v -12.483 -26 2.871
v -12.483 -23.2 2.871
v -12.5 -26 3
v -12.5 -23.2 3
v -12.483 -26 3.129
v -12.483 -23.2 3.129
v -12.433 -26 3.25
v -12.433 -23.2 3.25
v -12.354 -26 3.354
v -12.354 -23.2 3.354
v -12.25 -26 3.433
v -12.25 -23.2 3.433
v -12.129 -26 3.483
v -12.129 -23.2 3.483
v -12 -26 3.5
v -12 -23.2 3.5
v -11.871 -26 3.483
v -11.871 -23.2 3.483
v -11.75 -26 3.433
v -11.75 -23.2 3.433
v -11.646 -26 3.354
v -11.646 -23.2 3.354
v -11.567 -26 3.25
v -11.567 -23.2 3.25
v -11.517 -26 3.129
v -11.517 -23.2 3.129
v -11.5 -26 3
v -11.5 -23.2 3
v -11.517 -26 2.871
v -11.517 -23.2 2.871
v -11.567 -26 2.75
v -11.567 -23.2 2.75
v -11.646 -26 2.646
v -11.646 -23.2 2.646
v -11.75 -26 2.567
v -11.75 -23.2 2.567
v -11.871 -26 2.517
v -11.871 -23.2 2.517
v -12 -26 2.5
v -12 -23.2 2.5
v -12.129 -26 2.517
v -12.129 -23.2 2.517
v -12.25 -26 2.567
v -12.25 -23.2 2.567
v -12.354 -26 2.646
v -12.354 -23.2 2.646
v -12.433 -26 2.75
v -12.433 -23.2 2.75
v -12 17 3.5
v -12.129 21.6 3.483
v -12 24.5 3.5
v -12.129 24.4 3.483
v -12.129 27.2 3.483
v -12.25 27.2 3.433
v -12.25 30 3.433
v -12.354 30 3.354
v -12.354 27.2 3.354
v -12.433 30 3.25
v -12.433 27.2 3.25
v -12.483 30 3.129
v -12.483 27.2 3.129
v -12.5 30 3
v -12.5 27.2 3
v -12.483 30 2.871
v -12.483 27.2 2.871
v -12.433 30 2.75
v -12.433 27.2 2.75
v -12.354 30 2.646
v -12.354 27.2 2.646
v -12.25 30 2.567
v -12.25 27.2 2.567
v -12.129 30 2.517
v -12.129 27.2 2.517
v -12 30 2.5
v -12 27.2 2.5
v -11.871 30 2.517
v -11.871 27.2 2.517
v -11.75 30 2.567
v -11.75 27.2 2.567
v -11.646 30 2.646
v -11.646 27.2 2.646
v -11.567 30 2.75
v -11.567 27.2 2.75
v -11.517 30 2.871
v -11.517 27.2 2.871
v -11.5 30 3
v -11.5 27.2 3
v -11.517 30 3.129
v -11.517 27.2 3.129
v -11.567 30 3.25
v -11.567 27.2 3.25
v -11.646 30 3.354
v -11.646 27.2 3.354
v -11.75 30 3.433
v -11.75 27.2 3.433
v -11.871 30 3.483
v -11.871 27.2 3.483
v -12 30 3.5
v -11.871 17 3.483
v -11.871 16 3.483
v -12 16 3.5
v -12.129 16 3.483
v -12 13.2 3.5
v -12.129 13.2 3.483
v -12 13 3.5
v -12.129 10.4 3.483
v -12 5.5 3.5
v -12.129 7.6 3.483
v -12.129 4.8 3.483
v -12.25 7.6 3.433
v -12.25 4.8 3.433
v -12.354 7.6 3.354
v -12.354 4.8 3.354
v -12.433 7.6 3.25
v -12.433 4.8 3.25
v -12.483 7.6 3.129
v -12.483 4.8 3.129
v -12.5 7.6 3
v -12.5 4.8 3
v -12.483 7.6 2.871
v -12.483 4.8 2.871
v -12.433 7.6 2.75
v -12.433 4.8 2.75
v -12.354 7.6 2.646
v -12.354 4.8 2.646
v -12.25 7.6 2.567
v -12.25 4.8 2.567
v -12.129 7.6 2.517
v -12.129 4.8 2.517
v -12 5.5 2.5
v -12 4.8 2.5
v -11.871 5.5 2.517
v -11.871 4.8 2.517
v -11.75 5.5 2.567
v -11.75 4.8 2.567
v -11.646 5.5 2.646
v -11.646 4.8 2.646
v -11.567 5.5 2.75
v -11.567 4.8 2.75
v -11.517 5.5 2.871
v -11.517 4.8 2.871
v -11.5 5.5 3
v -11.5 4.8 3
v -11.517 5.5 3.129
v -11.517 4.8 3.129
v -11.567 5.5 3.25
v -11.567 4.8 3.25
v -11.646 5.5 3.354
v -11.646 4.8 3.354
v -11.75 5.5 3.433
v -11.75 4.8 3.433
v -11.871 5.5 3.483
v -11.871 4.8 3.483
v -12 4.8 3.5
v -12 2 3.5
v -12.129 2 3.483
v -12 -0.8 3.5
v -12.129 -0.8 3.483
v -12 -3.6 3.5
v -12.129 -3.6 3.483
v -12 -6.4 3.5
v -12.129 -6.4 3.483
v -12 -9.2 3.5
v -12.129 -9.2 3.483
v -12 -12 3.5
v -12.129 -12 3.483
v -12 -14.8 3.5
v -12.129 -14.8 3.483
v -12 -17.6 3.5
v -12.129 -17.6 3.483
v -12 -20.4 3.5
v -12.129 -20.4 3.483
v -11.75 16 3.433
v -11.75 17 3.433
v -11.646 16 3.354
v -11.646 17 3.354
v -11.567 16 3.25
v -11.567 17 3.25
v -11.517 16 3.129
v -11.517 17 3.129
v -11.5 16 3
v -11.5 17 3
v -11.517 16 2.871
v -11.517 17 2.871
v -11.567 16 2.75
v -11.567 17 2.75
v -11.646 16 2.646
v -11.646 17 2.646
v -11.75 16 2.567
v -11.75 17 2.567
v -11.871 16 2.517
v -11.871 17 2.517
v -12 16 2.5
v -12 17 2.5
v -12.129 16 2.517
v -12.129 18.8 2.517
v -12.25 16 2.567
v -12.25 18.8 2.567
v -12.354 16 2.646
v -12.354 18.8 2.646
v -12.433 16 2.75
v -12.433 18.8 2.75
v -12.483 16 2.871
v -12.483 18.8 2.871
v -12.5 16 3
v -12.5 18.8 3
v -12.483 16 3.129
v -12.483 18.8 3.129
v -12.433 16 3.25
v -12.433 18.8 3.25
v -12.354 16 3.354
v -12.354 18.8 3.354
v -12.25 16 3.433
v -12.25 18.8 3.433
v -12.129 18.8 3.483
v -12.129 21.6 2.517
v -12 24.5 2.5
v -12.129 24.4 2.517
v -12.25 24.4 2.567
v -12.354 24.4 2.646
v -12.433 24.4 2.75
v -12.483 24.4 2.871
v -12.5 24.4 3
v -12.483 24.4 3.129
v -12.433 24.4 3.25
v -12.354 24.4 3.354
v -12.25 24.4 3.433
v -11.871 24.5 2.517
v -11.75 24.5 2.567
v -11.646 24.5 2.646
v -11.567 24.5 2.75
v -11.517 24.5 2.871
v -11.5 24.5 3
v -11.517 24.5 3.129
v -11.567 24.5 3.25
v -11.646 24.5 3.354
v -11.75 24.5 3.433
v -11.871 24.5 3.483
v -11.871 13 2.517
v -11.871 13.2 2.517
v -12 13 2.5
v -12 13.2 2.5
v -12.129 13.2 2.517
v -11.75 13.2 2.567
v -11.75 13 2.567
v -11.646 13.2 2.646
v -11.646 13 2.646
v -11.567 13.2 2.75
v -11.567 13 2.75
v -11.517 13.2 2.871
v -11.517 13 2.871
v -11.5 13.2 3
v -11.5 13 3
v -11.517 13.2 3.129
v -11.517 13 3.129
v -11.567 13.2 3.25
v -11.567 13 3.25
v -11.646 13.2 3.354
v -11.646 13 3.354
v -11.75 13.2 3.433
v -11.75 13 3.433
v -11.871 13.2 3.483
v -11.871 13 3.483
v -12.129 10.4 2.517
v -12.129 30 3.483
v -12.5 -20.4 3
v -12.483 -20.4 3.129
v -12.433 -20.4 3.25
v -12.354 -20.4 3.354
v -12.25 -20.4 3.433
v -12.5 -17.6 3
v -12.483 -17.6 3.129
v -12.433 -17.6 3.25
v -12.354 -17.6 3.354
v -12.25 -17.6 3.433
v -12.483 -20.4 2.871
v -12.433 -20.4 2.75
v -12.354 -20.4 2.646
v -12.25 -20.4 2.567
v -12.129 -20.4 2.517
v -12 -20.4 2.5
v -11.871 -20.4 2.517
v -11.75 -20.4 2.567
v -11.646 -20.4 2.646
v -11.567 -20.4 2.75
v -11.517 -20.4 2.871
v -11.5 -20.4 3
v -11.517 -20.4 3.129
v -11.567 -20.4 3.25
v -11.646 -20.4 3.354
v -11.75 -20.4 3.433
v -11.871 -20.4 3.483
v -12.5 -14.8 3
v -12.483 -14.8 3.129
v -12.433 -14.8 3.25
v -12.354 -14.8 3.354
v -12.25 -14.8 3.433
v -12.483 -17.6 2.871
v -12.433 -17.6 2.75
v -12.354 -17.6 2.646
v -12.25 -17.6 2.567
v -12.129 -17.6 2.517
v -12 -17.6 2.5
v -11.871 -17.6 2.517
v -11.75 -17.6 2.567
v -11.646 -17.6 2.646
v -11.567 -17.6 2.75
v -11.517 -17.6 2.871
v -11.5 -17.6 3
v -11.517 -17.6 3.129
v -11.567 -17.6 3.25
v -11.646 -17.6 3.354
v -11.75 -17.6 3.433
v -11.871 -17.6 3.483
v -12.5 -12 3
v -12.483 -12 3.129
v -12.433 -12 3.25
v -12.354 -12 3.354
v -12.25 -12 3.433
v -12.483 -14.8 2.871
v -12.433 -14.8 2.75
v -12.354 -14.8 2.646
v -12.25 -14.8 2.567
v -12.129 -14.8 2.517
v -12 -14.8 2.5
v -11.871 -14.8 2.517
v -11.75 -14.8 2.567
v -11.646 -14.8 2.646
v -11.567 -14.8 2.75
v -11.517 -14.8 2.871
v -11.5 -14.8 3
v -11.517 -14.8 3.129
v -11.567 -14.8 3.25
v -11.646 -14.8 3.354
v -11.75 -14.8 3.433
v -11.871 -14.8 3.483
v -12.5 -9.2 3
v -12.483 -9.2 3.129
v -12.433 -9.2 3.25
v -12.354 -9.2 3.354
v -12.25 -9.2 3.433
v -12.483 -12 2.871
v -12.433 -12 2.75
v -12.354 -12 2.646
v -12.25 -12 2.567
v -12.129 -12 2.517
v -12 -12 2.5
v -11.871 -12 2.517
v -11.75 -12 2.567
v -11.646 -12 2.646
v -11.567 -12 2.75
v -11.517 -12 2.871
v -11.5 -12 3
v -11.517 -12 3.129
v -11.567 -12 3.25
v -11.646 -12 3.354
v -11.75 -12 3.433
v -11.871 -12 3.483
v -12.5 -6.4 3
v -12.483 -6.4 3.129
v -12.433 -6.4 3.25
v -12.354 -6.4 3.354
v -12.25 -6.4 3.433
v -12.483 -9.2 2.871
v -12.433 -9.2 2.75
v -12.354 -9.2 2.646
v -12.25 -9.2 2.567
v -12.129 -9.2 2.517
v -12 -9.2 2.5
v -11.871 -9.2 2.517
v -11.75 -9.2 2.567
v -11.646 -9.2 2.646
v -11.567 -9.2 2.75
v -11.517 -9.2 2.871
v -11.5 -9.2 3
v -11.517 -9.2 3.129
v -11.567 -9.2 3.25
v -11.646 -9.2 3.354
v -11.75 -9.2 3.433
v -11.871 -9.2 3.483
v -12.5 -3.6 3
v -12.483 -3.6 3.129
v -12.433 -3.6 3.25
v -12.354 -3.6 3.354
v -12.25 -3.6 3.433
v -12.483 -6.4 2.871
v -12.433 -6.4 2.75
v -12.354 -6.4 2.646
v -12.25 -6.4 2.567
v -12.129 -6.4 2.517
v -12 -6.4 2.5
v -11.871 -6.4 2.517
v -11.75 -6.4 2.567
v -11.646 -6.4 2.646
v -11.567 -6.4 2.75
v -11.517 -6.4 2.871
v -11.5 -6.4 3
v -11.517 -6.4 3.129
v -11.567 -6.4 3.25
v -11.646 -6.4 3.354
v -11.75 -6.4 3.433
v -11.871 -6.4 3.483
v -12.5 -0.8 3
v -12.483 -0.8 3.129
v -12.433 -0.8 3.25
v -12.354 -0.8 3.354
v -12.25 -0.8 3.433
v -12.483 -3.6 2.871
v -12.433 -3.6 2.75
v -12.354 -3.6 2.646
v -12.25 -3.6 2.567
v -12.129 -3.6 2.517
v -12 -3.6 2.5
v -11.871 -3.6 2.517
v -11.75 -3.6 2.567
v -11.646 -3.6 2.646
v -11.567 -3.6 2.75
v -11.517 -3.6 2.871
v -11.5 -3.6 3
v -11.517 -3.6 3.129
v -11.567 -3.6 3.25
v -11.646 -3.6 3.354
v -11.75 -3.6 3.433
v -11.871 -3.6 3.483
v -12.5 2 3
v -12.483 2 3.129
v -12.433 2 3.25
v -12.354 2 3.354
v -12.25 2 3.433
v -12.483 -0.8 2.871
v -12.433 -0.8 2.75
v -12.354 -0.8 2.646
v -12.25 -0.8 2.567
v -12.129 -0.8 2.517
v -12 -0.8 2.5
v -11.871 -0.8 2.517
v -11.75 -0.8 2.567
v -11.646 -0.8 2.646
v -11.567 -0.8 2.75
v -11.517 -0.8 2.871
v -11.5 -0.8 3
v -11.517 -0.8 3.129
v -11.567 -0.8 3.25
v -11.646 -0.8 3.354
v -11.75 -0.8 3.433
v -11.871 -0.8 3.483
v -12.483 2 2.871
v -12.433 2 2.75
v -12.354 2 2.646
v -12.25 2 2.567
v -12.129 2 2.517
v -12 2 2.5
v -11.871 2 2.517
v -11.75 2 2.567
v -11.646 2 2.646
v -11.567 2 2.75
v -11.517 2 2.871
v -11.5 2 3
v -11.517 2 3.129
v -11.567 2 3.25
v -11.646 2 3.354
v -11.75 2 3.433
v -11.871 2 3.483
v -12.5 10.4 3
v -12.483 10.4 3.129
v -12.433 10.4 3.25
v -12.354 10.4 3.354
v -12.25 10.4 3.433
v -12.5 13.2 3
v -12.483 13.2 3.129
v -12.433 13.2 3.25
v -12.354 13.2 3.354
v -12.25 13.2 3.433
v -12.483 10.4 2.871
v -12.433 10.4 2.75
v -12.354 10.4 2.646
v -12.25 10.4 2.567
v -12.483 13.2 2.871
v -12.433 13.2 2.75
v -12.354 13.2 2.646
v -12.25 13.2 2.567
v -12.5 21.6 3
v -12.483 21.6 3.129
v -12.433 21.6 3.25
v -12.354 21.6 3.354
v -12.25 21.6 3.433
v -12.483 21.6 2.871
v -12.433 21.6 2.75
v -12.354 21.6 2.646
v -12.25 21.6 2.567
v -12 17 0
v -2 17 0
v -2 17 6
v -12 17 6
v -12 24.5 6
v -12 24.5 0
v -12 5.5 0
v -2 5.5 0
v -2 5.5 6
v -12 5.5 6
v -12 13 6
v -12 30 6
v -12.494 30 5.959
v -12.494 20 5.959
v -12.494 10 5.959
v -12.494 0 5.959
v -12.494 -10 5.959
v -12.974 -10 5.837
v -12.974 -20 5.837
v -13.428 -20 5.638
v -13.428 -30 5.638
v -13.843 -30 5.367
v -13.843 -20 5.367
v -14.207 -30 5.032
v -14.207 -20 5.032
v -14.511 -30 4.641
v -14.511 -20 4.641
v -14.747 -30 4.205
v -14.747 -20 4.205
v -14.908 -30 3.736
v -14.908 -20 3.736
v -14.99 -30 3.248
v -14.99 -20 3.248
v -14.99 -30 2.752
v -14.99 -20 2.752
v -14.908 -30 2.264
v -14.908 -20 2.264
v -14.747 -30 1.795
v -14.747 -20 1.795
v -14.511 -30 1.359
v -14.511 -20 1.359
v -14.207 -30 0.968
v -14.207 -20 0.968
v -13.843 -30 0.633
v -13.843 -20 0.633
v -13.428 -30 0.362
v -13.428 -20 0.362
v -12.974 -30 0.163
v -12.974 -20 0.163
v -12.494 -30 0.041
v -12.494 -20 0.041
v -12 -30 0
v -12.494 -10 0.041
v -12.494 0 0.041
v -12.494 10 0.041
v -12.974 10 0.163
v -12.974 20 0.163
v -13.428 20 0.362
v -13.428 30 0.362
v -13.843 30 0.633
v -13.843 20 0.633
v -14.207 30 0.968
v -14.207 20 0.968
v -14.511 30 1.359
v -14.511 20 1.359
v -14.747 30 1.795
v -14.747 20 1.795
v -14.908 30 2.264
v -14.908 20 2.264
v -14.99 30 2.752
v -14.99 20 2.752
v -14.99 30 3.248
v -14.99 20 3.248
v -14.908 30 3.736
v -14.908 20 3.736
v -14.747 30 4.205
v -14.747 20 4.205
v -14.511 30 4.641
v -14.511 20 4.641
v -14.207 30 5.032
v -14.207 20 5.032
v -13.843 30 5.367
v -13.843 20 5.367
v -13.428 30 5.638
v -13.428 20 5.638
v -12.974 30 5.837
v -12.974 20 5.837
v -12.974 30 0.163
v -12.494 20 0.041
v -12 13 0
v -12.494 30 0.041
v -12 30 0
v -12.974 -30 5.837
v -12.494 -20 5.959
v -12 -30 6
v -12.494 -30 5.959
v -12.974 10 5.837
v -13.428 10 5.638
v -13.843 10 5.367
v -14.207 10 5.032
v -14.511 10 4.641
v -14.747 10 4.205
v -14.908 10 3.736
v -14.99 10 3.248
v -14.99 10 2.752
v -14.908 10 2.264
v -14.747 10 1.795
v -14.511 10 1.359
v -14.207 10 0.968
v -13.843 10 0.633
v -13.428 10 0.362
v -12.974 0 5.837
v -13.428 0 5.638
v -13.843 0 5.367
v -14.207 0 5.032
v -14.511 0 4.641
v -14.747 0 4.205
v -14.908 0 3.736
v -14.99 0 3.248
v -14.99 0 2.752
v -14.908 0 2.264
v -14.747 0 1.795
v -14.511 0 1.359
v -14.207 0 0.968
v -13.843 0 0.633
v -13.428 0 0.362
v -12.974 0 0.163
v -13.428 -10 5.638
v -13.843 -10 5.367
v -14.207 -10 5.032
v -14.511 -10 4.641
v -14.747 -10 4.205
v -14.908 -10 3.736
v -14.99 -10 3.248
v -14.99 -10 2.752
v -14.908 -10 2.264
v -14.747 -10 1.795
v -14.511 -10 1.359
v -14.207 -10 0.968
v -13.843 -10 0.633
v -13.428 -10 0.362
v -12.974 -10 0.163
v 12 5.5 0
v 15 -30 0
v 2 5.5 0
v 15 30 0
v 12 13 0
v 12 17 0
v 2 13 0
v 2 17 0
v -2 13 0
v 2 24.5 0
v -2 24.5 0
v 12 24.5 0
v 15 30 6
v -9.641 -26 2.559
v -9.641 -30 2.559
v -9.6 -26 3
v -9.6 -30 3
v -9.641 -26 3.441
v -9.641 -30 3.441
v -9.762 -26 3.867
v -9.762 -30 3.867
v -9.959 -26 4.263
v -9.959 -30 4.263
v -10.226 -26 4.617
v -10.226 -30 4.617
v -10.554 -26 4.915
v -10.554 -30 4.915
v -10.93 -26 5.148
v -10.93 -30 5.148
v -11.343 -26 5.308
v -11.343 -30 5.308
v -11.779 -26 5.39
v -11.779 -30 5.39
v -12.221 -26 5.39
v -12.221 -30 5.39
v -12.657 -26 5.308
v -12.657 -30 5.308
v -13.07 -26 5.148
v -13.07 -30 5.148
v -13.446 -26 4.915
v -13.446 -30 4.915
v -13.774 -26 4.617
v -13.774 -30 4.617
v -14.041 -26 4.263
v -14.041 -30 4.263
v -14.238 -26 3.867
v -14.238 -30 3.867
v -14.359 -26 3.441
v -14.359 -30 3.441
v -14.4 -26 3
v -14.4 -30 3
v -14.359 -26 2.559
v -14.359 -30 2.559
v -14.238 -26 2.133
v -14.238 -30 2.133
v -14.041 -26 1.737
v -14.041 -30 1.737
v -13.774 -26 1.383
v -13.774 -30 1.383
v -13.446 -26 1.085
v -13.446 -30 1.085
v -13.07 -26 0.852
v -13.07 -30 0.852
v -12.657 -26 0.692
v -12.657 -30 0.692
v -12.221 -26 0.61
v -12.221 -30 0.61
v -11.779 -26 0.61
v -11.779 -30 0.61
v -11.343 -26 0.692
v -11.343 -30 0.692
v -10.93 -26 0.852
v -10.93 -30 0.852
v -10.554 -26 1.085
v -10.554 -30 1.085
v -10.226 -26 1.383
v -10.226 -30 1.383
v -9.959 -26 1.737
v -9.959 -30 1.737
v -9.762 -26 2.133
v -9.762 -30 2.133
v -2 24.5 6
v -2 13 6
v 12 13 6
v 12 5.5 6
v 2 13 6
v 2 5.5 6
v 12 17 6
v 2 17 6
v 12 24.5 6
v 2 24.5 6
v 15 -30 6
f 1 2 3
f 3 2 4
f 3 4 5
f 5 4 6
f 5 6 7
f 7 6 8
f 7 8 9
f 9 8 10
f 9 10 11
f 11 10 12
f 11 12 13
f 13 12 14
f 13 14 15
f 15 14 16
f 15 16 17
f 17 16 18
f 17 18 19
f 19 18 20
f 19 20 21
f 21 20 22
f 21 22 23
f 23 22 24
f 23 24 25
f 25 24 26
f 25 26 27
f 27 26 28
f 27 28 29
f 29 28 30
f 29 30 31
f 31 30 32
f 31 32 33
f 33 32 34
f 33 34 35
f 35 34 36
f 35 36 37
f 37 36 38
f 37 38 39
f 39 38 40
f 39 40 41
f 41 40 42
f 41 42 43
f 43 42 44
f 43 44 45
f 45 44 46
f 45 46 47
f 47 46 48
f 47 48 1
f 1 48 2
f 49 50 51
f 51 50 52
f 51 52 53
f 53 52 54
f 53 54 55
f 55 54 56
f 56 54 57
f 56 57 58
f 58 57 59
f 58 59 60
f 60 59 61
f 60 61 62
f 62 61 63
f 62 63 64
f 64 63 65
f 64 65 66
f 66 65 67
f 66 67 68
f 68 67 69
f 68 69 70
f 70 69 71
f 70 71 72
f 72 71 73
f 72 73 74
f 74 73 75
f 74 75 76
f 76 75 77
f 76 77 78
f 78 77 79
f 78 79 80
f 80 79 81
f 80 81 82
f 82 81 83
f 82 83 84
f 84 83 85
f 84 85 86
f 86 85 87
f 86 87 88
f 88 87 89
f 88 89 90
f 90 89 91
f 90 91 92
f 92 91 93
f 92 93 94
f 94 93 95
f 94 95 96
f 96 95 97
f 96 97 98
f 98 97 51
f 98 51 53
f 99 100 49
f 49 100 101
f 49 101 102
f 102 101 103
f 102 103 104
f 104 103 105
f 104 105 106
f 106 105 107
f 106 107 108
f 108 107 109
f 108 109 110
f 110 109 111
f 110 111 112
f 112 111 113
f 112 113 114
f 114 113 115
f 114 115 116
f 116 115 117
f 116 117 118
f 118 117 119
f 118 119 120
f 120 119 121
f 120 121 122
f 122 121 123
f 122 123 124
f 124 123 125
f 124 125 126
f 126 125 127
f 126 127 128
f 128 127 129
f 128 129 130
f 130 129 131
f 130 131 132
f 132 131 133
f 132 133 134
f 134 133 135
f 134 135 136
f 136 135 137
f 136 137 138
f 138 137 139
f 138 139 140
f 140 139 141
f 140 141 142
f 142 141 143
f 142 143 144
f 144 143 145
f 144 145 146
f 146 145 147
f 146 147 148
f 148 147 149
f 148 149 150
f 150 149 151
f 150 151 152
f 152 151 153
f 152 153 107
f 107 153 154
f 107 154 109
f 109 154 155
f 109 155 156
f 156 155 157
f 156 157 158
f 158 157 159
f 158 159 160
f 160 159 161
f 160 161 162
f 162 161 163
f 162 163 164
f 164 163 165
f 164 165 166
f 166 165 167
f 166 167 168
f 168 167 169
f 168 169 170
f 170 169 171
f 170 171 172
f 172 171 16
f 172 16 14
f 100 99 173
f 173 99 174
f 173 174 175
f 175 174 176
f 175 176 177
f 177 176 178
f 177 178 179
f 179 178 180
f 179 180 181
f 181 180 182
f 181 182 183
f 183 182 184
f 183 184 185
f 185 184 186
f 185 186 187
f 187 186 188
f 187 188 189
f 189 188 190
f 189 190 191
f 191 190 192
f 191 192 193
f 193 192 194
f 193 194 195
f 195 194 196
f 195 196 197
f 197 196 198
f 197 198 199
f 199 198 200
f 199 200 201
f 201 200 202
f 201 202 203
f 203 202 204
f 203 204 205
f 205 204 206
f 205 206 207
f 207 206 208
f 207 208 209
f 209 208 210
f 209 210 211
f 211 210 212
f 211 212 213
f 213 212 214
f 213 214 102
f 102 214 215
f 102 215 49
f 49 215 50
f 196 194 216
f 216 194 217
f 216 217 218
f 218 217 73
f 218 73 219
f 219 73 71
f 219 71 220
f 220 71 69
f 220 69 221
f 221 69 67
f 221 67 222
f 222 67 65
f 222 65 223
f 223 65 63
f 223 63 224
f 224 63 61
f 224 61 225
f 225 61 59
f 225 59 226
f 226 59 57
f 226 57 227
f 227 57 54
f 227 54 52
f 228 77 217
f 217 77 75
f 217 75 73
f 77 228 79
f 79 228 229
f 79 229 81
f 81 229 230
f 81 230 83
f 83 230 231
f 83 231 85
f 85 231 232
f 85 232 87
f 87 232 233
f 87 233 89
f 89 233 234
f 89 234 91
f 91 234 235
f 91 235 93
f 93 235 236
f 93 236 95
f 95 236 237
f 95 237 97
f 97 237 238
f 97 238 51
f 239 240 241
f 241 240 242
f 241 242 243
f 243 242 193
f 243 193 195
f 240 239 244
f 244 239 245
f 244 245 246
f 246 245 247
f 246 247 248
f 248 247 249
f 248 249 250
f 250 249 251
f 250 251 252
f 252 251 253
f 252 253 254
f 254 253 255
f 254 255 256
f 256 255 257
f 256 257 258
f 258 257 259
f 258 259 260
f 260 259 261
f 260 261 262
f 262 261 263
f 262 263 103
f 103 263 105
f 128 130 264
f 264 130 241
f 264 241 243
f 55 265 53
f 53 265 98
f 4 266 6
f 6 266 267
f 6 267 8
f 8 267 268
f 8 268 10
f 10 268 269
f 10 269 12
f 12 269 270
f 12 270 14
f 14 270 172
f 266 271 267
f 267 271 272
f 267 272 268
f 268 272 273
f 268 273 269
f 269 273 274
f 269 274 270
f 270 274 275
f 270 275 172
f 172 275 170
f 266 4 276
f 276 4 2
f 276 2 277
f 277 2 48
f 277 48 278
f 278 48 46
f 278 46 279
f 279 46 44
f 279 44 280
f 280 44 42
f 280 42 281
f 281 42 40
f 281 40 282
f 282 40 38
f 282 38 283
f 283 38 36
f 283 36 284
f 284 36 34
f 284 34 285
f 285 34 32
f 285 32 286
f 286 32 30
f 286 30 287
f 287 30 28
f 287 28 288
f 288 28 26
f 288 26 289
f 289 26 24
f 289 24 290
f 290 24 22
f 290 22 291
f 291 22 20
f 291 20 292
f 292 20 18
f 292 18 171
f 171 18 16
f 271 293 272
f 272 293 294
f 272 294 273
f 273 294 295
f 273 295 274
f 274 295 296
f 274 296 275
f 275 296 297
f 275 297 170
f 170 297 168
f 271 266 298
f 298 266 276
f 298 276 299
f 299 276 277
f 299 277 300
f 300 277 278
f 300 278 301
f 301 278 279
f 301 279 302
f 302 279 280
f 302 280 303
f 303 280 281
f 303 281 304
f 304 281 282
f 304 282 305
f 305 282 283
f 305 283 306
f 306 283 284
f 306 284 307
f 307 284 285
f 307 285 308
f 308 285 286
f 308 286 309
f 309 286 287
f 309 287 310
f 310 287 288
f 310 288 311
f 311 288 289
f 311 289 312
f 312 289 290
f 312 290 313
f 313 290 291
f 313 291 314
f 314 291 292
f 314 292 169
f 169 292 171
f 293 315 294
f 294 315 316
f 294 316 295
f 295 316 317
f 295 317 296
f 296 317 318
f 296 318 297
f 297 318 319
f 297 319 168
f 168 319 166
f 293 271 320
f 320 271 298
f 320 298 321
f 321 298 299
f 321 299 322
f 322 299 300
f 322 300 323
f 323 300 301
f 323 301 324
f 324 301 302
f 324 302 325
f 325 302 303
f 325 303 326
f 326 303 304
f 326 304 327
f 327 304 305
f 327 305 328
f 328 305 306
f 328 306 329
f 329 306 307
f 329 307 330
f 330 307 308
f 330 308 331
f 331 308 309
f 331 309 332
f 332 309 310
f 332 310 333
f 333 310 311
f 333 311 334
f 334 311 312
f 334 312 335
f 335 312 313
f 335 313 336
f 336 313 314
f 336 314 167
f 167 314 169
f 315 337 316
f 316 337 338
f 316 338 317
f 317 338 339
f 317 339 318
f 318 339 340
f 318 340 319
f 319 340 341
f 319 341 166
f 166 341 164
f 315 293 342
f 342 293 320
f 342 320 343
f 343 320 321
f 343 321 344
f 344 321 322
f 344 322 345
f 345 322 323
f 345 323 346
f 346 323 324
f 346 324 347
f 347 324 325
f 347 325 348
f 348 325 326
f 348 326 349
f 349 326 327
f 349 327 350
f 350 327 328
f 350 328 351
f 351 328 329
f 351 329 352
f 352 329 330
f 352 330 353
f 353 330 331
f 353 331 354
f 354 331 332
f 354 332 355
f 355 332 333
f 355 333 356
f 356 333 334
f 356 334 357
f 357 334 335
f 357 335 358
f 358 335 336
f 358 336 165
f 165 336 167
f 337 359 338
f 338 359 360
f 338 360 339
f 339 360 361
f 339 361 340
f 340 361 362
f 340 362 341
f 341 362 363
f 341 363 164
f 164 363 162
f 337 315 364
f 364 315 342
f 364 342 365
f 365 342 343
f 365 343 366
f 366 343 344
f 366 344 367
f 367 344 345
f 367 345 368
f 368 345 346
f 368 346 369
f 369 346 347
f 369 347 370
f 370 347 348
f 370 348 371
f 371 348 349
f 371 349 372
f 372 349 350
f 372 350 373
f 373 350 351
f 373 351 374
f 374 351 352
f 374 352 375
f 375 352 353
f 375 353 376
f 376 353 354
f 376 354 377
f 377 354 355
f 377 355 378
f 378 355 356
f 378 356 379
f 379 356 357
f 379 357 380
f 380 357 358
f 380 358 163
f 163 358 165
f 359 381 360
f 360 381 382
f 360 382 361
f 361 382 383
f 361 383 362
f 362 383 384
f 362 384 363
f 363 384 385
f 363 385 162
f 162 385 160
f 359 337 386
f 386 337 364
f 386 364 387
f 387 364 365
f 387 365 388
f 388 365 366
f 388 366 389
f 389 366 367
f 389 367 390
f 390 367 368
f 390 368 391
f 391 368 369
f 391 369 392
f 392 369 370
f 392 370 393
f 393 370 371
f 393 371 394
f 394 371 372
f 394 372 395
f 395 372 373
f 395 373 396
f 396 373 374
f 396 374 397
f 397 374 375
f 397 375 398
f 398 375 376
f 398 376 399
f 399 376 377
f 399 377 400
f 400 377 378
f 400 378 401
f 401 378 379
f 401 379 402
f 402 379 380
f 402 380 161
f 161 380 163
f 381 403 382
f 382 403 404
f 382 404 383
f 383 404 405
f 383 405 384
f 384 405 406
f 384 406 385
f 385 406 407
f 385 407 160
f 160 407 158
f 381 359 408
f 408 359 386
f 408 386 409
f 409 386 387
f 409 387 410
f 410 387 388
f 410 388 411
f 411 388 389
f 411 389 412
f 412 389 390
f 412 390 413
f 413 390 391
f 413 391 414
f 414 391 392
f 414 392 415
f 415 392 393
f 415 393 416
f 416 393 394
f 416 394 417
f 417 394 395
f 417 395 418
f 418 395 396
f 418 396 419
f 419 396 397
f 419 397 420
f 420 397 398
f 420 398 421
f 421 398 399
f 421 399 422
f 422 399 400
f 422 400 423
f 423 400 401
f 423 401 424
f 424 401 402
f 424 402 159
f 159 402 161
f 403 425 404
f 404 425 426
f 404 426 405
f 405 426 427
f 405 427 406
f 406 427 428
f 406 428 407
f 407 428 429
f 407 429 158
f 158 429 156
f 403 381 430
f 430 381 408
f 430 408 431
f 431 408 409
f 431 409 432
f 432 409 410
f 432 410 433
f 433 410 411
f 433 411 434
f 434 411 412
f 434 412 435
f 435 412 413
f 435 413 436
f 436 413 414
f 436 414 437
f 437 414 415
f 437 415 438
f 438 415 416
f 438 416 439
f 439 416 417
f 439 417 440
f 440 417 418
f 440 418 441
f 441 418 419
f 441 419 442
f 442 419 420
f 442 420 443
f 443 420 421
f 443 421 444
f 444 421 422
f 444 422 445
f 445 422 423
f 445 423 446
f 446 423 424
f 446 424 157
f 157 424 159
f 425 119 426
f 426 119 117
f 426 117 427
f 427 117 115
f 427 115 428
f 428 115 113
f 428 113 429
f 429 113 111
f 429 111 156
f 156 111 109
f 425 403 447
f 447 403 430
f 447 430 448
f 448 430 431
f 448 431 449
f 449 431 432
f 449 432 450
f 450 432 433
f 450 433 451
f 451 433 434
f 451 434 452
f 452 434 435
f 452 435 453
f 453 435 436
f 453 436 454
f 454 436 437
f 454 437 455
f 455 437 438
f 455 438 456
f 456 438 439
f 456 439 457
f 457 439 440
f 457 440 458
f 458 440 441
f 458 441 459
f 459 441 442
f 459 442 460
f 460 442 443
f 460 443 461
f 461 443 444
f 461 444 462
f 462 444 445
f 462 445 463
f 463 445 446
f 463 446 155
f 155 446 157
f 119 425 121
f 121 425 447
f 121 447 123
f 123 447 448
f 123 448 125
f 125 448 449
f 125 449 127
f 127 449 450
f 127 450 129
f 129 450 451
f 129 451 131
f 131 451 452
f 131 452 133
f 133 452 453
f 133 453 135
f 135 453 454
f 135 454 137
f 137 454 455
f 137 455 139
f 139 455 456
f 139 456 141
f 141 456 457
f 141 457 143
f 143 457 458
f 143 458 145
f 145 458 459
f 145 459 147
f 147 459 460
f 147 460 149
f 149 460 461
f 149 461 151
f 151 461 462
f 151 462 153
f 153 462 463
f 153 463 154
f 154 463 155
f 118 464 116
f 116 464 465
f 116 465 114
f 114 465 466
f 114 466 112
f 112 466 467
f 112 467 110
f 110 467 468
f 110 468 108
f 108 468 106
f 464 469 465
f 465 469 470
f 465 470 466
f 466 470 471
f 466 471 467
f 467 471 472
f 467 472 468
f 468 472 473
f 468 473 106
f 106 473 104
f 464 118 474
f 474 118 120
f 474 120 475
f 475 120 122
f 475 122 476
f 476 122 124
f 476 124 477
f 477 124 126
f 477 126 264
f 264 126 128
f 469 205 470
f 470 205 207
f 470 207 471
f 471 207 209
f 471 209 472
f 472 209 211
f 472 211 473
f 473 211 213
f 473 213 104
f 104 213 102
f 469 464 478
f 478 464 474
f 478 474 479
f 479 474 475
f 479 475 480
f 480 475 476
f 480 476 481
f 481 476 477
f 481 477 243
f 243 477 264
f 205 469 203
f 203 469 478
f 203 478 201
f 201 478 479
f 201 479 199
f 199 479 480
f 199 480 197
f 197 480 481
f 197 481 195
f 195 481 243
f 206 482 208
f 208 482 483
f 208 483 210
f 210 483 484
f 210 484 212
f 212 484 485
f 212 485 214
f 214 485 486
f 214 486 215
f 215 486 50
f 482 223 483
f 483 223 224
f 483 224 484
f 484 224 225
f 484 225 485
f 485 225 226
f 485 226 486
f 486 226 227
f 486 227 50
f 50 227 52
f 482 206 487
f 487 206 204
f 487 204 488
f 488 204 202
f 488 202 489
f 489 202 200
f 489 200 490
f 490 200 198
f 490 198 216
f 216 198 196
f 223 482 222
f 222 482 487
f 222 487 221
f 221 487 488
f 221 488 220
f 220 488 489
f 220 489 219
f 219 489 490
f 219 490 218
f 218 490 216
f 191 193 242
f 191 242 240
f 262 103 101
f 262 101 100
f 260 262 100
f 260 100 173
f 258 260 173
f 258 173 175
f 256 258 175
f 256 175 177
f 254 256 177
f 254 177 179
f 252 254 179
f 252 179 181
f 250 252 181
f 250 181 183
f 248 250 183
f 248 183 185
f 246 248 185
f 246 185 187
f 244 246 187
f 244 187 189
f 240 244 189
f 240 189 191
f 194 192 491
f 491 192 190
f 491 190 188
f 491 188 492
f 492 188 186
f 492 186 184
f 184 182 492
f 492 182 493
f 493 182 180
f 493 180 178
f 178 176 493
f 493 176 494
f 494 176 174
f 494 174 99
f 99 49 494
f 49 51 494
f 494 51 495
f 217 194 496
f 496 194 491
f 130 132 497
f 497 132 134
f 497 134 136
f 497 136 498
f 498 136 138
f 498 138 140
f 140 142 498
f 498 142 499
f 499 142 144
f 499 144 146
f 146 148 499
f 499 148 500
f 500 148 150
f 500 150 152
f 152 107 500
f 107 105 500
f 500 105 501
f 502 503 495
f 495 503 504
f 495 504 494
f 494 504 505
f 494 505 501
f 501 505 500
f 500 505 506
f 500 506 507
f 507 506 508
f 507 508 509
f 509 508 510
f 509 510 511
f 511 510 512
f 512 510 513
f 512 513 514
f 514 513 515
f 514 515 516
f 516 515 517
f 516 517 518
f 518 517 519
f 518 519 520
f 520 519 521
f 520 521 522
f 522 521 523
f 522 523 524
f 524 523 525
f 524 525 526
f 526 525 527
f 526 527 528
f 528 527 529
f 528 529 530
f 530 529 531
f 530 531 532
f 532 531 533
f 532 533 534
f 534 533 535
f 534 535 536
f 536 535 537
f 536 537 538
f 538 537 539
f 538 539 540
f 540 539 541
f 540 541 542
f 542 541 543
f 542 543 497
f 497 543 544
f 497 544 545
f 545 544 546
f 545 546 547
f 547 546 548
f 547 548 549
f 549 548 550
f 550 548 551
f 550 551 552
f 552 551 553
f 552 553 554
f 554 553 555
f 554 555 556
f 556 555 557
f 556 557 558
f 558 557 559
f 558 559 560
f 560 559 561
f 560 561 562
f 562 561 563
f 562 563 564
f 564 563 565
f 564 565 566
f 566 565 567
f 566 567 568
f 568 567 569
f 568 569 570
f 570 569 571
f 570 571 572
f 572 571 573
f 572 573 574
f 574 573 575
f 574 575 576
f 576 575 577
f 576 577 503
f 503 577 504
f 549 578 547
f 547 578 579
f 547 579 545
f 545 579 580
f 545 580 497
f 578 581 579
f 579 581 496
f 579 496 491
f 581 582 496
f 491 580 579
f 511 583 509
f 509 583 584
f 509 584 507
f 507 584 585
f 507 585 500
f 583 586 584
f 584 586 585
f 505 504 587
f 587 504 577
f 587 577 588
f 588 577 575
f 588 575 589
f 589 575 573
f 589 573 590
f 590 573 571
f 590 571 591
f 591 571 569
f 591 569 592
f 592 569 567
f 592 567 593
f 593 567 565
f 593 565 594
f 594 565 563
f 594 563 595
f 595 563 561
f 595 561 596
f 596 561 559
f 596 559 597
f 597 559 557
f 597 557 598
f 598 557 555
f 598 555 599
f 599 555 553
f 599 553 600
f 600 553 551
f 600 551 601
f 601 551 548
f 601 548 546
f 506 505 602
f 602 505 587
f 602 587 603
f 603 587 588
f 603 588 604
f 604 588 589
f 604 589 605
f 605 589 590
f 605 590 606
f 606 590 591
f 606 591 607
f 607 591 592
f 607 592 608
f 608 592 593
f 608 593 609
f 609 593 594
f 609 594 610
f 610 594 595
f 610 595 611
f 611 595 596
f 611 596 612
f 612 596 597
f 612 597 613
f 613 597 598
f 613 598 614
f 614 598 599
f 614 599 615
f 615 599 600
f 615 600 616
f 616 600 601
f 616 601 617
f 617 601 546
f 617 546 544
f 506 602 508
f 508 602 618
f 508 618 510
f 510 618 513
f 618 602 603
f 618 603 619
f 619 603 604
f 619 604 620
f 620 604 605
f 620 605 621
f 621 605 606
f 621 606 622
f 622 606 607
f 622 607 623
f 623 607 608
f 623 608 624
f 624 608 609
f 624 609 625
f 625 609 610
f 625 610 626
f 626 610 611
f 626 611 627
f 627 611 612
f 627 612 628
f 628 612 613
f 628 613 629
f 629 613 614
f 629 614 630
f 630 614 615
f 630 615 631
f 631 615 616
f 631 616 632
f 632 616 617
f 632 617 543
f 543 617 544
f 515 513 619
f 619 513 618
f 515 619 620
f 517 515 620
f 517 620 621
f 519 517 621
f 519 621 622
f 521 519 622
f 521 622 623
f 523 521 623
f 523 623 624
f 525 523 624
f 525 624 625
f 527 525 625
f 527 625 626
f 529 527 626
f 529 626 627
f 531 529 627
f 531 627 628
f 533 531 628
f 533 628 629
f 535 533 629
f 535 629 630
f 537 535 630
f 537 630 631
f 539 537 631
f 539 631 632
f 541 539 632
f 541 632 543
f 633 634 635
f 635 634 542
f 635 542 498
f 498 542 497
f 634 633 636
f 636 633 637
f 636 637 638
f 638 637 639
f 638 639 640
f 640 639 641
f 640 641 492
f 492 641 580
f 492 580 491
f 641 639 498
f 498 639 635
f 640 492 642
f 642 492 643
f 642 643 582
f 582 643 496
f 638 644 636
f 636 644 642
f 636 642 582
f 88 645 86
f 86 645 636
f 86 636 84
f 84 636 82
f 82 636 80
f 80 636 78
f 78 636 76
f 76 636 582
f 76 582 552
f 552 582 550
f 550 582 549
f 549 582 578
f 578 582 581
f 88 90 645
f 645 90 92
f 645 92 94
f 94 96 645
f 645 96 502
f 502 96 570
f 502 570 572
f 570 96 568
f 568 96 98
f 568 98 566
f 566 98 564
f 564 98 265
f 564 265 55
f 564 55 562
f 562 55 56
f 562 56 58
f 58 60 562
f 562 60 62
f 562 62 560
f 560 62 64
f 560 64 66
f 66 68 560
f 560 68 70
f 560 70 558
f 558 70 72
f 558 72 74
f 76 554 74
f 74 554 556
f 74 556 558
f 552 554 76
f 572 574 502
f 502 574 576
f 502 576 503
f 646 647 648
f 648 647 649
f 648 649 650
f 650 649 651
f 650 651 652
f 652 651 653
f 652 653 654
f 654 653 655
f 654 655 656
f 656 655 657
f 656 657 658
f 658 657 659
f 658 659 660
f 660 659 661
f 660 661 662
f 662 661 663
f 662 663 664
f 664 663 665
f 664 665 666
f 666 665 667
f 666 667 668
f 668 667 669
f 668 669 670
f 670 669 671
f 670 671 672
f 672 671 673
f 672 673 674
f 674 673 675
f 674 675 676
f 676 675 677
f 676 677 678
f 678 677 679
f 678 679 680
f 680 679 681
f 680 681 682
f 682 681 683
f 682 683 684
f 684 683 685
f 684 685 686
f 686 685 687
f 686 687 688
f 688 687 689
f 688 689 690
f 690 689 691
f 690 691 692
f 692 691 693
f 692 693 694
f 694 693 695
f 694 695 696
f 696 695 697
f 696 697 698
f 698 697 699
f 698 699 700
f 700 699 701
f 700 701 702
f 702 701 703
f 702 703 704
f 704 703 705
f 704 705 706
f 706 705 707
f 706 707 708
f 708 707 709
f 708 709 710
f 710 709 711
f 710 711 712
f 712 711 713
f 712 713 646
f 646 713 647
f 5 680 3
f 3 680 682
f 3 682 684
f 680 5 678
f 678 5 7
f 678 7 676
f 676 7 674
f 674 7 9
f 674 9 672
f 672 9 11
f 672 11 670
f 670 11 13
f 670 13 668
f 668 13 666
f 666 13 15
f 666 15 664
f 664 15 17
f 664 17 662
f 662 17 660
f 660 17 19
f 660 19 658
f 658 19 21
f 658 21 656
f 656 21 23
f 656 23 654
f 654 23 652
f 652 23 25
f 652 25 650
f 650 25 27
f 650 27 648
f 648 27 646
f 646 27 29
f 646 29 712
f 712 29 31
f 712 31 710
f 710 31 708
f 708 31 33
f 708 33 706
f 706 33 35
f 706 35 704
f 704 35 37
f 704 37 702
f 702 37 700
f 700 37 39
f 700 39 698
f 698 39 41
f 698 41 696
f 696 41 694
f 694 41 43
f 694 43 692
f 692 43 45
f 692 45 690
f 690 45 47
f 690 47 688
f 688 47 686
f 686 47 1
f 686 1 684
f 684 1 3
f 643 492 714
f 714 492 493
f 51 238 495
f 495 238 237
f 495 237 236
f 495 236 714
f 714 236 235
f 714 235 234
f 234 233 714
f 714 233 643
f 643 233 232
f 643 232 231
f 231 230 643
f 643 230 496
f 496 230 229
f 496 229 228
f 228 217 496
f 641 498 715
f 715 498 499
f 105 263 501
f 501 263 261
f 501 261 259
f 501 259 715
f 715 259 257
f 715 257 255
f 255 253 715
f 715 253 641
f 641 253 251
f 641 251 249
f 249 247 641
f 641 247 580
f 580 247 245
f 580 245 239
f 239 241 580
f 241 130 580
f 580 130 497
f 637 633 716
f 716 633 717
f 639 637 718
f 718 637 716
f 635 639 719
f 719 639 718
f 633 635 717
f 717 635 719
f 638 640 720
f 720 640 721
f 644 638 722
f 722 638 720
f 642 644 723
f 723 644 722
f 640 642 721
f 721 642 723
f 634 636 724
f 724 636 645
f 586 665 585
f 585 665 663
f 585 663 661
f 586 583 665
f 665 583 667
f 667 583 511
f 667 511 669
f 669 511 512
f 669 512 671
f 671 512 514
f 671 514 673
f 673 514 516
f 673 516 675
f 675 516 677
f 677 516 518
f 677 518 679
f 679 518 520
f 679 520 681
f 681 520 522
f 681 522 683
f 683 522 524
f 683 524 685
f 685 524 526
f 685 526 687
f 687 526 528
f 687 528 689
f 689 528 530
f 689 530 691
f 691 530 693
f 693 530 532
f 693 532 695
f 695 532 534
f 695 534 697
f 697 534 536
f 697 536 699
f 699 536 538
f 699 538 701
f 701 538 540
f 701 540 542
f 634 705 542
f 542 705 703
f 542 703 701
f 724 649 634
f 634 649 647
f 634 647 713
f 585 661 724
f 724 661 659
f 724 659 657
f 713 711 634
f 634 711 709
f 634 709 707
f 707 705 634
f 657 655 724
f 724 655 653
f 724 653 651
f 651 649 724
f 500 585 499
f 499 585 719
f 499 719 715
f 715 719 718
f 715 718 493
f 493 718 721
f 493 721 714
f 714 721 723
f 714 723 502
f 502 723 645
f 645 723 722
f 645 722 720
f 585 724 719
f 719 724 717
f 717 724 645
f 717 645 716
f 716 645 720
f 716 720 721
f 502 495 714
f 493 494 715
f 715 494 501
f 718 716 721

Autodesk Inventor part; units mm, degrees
ref_plane "YZ Plane" through (0, 0, 0) normal (1, 0, 0) x (0, 1, 0)
ref_plane "XZ Plane" through (0, 0, 0) normal (0, 1, 0) x (-1, 0, 0)
ref_plane "XY Plane" through (0, 0, 0) normal (0, 0, 1) x (1, 0, 0)
sketch "Náčrt1" plane through (0, 0, 0) normal (0, 0, 1) x (1, 0, 0)
  line L0 (-15, -30) -> (15, -30)
  line L1 (15, -30) -> (15, 30)
  line L2 (15, 30) -> (-15, 30)
  line L3 (-15, 30) -> (-15, -30)
  line L4 (-15, -30) -> (15, 30) construction
  line L5 (15, -30) -> (-15, 30) construction
  line L6 (0, 30) -> (0, 0)
  line L7 (-15, 15) -> (15, 15)
  line L8 (2, 17) -> (12, 17)
  line L9 (12, 17) -> (12, 24.5)
  line L10 (12, 24.5) -> (2, 24.5)
  line L11 (2, 24.5) -> (2, 17)
  line L12 (-2, 17) -> (-12, 17)
  line L13 (-12, 17) -> (-12, 24.5)
  line L14 (-12, 24.5) -> (-2, 24.5)
  line L15 (-2, 24.5) -> (-2, 17)
  line L16 (2, 13) -> (12, 13)
  line L17 (12, 13) -> (12, 5.5)
  line L18 (12, 5.5) -> (2, 5.5)
  line L19 (2, 5.5) -> (2, 13)
  line L20 (-12, 5.5) -> (-2, 5.5)
  line L21 (-12, 13) -> (-12, 5.5)
  line L22 (-2, 13) -> (-12, 13)
  line L23 (-2, 5.5) -> (-2, 13)
  dimension "d0" = 30
  dimension "d1" = 60
  dimension "d2" = 15
  dimension "d3" = 10
  dimension "d4" = 7.5
  dimension "d5" = 2
  dimension "d6" = 2
extrude "Vysunutí1" add sketch "Náčrt1" along normal blind 6
sketch "Náčrt2" plane through (15, -30, 0) normal (0, -1, 0) x (1, 0, 0)
  circle A0 centre (-27, 3) radius 2.4
  line L0 (-30, 0) -> (-30, 6) projected
  line L1 (-30, 6) -> (0, 6) projected
  line L2 (-30, 0) -> (0, 0) projected
  line L3 (-27, 0) -> (-27, 6) projected
  point P0 (-15, 0)
  point P1 (-30, 2)
  point P2 (-30, 4)
  dimension "d13" = 4.8
  dimension "d14" = 3
  dimension "d15" = 3
  dimension "d16" = 3
extrude "Vysunutí2" cut sketch "Náčrt2" against normal blind 4 contours A0 L3 | L3 A0
full round fillet "Plné kulaté zaoblení1" first side at (0.6667, -18.1667, 6) centre faces at (-15, 10, 2) second side at (0.6667, -18.1667, 0)
sketch "Náčrt3" plane through (15, 30, 6) normal (0, 1, 0) x (1, 0, 0)
  arc A0 (-27, 6) -> (-27, 0) centre (-27, 3) ccw projected
  point P0 (-15, 6)
hole "Díra1" at (-12, 30, 3) direction (0, -1, 0) diameter 1 end through all
properties part number "dvere_3D tisk"
